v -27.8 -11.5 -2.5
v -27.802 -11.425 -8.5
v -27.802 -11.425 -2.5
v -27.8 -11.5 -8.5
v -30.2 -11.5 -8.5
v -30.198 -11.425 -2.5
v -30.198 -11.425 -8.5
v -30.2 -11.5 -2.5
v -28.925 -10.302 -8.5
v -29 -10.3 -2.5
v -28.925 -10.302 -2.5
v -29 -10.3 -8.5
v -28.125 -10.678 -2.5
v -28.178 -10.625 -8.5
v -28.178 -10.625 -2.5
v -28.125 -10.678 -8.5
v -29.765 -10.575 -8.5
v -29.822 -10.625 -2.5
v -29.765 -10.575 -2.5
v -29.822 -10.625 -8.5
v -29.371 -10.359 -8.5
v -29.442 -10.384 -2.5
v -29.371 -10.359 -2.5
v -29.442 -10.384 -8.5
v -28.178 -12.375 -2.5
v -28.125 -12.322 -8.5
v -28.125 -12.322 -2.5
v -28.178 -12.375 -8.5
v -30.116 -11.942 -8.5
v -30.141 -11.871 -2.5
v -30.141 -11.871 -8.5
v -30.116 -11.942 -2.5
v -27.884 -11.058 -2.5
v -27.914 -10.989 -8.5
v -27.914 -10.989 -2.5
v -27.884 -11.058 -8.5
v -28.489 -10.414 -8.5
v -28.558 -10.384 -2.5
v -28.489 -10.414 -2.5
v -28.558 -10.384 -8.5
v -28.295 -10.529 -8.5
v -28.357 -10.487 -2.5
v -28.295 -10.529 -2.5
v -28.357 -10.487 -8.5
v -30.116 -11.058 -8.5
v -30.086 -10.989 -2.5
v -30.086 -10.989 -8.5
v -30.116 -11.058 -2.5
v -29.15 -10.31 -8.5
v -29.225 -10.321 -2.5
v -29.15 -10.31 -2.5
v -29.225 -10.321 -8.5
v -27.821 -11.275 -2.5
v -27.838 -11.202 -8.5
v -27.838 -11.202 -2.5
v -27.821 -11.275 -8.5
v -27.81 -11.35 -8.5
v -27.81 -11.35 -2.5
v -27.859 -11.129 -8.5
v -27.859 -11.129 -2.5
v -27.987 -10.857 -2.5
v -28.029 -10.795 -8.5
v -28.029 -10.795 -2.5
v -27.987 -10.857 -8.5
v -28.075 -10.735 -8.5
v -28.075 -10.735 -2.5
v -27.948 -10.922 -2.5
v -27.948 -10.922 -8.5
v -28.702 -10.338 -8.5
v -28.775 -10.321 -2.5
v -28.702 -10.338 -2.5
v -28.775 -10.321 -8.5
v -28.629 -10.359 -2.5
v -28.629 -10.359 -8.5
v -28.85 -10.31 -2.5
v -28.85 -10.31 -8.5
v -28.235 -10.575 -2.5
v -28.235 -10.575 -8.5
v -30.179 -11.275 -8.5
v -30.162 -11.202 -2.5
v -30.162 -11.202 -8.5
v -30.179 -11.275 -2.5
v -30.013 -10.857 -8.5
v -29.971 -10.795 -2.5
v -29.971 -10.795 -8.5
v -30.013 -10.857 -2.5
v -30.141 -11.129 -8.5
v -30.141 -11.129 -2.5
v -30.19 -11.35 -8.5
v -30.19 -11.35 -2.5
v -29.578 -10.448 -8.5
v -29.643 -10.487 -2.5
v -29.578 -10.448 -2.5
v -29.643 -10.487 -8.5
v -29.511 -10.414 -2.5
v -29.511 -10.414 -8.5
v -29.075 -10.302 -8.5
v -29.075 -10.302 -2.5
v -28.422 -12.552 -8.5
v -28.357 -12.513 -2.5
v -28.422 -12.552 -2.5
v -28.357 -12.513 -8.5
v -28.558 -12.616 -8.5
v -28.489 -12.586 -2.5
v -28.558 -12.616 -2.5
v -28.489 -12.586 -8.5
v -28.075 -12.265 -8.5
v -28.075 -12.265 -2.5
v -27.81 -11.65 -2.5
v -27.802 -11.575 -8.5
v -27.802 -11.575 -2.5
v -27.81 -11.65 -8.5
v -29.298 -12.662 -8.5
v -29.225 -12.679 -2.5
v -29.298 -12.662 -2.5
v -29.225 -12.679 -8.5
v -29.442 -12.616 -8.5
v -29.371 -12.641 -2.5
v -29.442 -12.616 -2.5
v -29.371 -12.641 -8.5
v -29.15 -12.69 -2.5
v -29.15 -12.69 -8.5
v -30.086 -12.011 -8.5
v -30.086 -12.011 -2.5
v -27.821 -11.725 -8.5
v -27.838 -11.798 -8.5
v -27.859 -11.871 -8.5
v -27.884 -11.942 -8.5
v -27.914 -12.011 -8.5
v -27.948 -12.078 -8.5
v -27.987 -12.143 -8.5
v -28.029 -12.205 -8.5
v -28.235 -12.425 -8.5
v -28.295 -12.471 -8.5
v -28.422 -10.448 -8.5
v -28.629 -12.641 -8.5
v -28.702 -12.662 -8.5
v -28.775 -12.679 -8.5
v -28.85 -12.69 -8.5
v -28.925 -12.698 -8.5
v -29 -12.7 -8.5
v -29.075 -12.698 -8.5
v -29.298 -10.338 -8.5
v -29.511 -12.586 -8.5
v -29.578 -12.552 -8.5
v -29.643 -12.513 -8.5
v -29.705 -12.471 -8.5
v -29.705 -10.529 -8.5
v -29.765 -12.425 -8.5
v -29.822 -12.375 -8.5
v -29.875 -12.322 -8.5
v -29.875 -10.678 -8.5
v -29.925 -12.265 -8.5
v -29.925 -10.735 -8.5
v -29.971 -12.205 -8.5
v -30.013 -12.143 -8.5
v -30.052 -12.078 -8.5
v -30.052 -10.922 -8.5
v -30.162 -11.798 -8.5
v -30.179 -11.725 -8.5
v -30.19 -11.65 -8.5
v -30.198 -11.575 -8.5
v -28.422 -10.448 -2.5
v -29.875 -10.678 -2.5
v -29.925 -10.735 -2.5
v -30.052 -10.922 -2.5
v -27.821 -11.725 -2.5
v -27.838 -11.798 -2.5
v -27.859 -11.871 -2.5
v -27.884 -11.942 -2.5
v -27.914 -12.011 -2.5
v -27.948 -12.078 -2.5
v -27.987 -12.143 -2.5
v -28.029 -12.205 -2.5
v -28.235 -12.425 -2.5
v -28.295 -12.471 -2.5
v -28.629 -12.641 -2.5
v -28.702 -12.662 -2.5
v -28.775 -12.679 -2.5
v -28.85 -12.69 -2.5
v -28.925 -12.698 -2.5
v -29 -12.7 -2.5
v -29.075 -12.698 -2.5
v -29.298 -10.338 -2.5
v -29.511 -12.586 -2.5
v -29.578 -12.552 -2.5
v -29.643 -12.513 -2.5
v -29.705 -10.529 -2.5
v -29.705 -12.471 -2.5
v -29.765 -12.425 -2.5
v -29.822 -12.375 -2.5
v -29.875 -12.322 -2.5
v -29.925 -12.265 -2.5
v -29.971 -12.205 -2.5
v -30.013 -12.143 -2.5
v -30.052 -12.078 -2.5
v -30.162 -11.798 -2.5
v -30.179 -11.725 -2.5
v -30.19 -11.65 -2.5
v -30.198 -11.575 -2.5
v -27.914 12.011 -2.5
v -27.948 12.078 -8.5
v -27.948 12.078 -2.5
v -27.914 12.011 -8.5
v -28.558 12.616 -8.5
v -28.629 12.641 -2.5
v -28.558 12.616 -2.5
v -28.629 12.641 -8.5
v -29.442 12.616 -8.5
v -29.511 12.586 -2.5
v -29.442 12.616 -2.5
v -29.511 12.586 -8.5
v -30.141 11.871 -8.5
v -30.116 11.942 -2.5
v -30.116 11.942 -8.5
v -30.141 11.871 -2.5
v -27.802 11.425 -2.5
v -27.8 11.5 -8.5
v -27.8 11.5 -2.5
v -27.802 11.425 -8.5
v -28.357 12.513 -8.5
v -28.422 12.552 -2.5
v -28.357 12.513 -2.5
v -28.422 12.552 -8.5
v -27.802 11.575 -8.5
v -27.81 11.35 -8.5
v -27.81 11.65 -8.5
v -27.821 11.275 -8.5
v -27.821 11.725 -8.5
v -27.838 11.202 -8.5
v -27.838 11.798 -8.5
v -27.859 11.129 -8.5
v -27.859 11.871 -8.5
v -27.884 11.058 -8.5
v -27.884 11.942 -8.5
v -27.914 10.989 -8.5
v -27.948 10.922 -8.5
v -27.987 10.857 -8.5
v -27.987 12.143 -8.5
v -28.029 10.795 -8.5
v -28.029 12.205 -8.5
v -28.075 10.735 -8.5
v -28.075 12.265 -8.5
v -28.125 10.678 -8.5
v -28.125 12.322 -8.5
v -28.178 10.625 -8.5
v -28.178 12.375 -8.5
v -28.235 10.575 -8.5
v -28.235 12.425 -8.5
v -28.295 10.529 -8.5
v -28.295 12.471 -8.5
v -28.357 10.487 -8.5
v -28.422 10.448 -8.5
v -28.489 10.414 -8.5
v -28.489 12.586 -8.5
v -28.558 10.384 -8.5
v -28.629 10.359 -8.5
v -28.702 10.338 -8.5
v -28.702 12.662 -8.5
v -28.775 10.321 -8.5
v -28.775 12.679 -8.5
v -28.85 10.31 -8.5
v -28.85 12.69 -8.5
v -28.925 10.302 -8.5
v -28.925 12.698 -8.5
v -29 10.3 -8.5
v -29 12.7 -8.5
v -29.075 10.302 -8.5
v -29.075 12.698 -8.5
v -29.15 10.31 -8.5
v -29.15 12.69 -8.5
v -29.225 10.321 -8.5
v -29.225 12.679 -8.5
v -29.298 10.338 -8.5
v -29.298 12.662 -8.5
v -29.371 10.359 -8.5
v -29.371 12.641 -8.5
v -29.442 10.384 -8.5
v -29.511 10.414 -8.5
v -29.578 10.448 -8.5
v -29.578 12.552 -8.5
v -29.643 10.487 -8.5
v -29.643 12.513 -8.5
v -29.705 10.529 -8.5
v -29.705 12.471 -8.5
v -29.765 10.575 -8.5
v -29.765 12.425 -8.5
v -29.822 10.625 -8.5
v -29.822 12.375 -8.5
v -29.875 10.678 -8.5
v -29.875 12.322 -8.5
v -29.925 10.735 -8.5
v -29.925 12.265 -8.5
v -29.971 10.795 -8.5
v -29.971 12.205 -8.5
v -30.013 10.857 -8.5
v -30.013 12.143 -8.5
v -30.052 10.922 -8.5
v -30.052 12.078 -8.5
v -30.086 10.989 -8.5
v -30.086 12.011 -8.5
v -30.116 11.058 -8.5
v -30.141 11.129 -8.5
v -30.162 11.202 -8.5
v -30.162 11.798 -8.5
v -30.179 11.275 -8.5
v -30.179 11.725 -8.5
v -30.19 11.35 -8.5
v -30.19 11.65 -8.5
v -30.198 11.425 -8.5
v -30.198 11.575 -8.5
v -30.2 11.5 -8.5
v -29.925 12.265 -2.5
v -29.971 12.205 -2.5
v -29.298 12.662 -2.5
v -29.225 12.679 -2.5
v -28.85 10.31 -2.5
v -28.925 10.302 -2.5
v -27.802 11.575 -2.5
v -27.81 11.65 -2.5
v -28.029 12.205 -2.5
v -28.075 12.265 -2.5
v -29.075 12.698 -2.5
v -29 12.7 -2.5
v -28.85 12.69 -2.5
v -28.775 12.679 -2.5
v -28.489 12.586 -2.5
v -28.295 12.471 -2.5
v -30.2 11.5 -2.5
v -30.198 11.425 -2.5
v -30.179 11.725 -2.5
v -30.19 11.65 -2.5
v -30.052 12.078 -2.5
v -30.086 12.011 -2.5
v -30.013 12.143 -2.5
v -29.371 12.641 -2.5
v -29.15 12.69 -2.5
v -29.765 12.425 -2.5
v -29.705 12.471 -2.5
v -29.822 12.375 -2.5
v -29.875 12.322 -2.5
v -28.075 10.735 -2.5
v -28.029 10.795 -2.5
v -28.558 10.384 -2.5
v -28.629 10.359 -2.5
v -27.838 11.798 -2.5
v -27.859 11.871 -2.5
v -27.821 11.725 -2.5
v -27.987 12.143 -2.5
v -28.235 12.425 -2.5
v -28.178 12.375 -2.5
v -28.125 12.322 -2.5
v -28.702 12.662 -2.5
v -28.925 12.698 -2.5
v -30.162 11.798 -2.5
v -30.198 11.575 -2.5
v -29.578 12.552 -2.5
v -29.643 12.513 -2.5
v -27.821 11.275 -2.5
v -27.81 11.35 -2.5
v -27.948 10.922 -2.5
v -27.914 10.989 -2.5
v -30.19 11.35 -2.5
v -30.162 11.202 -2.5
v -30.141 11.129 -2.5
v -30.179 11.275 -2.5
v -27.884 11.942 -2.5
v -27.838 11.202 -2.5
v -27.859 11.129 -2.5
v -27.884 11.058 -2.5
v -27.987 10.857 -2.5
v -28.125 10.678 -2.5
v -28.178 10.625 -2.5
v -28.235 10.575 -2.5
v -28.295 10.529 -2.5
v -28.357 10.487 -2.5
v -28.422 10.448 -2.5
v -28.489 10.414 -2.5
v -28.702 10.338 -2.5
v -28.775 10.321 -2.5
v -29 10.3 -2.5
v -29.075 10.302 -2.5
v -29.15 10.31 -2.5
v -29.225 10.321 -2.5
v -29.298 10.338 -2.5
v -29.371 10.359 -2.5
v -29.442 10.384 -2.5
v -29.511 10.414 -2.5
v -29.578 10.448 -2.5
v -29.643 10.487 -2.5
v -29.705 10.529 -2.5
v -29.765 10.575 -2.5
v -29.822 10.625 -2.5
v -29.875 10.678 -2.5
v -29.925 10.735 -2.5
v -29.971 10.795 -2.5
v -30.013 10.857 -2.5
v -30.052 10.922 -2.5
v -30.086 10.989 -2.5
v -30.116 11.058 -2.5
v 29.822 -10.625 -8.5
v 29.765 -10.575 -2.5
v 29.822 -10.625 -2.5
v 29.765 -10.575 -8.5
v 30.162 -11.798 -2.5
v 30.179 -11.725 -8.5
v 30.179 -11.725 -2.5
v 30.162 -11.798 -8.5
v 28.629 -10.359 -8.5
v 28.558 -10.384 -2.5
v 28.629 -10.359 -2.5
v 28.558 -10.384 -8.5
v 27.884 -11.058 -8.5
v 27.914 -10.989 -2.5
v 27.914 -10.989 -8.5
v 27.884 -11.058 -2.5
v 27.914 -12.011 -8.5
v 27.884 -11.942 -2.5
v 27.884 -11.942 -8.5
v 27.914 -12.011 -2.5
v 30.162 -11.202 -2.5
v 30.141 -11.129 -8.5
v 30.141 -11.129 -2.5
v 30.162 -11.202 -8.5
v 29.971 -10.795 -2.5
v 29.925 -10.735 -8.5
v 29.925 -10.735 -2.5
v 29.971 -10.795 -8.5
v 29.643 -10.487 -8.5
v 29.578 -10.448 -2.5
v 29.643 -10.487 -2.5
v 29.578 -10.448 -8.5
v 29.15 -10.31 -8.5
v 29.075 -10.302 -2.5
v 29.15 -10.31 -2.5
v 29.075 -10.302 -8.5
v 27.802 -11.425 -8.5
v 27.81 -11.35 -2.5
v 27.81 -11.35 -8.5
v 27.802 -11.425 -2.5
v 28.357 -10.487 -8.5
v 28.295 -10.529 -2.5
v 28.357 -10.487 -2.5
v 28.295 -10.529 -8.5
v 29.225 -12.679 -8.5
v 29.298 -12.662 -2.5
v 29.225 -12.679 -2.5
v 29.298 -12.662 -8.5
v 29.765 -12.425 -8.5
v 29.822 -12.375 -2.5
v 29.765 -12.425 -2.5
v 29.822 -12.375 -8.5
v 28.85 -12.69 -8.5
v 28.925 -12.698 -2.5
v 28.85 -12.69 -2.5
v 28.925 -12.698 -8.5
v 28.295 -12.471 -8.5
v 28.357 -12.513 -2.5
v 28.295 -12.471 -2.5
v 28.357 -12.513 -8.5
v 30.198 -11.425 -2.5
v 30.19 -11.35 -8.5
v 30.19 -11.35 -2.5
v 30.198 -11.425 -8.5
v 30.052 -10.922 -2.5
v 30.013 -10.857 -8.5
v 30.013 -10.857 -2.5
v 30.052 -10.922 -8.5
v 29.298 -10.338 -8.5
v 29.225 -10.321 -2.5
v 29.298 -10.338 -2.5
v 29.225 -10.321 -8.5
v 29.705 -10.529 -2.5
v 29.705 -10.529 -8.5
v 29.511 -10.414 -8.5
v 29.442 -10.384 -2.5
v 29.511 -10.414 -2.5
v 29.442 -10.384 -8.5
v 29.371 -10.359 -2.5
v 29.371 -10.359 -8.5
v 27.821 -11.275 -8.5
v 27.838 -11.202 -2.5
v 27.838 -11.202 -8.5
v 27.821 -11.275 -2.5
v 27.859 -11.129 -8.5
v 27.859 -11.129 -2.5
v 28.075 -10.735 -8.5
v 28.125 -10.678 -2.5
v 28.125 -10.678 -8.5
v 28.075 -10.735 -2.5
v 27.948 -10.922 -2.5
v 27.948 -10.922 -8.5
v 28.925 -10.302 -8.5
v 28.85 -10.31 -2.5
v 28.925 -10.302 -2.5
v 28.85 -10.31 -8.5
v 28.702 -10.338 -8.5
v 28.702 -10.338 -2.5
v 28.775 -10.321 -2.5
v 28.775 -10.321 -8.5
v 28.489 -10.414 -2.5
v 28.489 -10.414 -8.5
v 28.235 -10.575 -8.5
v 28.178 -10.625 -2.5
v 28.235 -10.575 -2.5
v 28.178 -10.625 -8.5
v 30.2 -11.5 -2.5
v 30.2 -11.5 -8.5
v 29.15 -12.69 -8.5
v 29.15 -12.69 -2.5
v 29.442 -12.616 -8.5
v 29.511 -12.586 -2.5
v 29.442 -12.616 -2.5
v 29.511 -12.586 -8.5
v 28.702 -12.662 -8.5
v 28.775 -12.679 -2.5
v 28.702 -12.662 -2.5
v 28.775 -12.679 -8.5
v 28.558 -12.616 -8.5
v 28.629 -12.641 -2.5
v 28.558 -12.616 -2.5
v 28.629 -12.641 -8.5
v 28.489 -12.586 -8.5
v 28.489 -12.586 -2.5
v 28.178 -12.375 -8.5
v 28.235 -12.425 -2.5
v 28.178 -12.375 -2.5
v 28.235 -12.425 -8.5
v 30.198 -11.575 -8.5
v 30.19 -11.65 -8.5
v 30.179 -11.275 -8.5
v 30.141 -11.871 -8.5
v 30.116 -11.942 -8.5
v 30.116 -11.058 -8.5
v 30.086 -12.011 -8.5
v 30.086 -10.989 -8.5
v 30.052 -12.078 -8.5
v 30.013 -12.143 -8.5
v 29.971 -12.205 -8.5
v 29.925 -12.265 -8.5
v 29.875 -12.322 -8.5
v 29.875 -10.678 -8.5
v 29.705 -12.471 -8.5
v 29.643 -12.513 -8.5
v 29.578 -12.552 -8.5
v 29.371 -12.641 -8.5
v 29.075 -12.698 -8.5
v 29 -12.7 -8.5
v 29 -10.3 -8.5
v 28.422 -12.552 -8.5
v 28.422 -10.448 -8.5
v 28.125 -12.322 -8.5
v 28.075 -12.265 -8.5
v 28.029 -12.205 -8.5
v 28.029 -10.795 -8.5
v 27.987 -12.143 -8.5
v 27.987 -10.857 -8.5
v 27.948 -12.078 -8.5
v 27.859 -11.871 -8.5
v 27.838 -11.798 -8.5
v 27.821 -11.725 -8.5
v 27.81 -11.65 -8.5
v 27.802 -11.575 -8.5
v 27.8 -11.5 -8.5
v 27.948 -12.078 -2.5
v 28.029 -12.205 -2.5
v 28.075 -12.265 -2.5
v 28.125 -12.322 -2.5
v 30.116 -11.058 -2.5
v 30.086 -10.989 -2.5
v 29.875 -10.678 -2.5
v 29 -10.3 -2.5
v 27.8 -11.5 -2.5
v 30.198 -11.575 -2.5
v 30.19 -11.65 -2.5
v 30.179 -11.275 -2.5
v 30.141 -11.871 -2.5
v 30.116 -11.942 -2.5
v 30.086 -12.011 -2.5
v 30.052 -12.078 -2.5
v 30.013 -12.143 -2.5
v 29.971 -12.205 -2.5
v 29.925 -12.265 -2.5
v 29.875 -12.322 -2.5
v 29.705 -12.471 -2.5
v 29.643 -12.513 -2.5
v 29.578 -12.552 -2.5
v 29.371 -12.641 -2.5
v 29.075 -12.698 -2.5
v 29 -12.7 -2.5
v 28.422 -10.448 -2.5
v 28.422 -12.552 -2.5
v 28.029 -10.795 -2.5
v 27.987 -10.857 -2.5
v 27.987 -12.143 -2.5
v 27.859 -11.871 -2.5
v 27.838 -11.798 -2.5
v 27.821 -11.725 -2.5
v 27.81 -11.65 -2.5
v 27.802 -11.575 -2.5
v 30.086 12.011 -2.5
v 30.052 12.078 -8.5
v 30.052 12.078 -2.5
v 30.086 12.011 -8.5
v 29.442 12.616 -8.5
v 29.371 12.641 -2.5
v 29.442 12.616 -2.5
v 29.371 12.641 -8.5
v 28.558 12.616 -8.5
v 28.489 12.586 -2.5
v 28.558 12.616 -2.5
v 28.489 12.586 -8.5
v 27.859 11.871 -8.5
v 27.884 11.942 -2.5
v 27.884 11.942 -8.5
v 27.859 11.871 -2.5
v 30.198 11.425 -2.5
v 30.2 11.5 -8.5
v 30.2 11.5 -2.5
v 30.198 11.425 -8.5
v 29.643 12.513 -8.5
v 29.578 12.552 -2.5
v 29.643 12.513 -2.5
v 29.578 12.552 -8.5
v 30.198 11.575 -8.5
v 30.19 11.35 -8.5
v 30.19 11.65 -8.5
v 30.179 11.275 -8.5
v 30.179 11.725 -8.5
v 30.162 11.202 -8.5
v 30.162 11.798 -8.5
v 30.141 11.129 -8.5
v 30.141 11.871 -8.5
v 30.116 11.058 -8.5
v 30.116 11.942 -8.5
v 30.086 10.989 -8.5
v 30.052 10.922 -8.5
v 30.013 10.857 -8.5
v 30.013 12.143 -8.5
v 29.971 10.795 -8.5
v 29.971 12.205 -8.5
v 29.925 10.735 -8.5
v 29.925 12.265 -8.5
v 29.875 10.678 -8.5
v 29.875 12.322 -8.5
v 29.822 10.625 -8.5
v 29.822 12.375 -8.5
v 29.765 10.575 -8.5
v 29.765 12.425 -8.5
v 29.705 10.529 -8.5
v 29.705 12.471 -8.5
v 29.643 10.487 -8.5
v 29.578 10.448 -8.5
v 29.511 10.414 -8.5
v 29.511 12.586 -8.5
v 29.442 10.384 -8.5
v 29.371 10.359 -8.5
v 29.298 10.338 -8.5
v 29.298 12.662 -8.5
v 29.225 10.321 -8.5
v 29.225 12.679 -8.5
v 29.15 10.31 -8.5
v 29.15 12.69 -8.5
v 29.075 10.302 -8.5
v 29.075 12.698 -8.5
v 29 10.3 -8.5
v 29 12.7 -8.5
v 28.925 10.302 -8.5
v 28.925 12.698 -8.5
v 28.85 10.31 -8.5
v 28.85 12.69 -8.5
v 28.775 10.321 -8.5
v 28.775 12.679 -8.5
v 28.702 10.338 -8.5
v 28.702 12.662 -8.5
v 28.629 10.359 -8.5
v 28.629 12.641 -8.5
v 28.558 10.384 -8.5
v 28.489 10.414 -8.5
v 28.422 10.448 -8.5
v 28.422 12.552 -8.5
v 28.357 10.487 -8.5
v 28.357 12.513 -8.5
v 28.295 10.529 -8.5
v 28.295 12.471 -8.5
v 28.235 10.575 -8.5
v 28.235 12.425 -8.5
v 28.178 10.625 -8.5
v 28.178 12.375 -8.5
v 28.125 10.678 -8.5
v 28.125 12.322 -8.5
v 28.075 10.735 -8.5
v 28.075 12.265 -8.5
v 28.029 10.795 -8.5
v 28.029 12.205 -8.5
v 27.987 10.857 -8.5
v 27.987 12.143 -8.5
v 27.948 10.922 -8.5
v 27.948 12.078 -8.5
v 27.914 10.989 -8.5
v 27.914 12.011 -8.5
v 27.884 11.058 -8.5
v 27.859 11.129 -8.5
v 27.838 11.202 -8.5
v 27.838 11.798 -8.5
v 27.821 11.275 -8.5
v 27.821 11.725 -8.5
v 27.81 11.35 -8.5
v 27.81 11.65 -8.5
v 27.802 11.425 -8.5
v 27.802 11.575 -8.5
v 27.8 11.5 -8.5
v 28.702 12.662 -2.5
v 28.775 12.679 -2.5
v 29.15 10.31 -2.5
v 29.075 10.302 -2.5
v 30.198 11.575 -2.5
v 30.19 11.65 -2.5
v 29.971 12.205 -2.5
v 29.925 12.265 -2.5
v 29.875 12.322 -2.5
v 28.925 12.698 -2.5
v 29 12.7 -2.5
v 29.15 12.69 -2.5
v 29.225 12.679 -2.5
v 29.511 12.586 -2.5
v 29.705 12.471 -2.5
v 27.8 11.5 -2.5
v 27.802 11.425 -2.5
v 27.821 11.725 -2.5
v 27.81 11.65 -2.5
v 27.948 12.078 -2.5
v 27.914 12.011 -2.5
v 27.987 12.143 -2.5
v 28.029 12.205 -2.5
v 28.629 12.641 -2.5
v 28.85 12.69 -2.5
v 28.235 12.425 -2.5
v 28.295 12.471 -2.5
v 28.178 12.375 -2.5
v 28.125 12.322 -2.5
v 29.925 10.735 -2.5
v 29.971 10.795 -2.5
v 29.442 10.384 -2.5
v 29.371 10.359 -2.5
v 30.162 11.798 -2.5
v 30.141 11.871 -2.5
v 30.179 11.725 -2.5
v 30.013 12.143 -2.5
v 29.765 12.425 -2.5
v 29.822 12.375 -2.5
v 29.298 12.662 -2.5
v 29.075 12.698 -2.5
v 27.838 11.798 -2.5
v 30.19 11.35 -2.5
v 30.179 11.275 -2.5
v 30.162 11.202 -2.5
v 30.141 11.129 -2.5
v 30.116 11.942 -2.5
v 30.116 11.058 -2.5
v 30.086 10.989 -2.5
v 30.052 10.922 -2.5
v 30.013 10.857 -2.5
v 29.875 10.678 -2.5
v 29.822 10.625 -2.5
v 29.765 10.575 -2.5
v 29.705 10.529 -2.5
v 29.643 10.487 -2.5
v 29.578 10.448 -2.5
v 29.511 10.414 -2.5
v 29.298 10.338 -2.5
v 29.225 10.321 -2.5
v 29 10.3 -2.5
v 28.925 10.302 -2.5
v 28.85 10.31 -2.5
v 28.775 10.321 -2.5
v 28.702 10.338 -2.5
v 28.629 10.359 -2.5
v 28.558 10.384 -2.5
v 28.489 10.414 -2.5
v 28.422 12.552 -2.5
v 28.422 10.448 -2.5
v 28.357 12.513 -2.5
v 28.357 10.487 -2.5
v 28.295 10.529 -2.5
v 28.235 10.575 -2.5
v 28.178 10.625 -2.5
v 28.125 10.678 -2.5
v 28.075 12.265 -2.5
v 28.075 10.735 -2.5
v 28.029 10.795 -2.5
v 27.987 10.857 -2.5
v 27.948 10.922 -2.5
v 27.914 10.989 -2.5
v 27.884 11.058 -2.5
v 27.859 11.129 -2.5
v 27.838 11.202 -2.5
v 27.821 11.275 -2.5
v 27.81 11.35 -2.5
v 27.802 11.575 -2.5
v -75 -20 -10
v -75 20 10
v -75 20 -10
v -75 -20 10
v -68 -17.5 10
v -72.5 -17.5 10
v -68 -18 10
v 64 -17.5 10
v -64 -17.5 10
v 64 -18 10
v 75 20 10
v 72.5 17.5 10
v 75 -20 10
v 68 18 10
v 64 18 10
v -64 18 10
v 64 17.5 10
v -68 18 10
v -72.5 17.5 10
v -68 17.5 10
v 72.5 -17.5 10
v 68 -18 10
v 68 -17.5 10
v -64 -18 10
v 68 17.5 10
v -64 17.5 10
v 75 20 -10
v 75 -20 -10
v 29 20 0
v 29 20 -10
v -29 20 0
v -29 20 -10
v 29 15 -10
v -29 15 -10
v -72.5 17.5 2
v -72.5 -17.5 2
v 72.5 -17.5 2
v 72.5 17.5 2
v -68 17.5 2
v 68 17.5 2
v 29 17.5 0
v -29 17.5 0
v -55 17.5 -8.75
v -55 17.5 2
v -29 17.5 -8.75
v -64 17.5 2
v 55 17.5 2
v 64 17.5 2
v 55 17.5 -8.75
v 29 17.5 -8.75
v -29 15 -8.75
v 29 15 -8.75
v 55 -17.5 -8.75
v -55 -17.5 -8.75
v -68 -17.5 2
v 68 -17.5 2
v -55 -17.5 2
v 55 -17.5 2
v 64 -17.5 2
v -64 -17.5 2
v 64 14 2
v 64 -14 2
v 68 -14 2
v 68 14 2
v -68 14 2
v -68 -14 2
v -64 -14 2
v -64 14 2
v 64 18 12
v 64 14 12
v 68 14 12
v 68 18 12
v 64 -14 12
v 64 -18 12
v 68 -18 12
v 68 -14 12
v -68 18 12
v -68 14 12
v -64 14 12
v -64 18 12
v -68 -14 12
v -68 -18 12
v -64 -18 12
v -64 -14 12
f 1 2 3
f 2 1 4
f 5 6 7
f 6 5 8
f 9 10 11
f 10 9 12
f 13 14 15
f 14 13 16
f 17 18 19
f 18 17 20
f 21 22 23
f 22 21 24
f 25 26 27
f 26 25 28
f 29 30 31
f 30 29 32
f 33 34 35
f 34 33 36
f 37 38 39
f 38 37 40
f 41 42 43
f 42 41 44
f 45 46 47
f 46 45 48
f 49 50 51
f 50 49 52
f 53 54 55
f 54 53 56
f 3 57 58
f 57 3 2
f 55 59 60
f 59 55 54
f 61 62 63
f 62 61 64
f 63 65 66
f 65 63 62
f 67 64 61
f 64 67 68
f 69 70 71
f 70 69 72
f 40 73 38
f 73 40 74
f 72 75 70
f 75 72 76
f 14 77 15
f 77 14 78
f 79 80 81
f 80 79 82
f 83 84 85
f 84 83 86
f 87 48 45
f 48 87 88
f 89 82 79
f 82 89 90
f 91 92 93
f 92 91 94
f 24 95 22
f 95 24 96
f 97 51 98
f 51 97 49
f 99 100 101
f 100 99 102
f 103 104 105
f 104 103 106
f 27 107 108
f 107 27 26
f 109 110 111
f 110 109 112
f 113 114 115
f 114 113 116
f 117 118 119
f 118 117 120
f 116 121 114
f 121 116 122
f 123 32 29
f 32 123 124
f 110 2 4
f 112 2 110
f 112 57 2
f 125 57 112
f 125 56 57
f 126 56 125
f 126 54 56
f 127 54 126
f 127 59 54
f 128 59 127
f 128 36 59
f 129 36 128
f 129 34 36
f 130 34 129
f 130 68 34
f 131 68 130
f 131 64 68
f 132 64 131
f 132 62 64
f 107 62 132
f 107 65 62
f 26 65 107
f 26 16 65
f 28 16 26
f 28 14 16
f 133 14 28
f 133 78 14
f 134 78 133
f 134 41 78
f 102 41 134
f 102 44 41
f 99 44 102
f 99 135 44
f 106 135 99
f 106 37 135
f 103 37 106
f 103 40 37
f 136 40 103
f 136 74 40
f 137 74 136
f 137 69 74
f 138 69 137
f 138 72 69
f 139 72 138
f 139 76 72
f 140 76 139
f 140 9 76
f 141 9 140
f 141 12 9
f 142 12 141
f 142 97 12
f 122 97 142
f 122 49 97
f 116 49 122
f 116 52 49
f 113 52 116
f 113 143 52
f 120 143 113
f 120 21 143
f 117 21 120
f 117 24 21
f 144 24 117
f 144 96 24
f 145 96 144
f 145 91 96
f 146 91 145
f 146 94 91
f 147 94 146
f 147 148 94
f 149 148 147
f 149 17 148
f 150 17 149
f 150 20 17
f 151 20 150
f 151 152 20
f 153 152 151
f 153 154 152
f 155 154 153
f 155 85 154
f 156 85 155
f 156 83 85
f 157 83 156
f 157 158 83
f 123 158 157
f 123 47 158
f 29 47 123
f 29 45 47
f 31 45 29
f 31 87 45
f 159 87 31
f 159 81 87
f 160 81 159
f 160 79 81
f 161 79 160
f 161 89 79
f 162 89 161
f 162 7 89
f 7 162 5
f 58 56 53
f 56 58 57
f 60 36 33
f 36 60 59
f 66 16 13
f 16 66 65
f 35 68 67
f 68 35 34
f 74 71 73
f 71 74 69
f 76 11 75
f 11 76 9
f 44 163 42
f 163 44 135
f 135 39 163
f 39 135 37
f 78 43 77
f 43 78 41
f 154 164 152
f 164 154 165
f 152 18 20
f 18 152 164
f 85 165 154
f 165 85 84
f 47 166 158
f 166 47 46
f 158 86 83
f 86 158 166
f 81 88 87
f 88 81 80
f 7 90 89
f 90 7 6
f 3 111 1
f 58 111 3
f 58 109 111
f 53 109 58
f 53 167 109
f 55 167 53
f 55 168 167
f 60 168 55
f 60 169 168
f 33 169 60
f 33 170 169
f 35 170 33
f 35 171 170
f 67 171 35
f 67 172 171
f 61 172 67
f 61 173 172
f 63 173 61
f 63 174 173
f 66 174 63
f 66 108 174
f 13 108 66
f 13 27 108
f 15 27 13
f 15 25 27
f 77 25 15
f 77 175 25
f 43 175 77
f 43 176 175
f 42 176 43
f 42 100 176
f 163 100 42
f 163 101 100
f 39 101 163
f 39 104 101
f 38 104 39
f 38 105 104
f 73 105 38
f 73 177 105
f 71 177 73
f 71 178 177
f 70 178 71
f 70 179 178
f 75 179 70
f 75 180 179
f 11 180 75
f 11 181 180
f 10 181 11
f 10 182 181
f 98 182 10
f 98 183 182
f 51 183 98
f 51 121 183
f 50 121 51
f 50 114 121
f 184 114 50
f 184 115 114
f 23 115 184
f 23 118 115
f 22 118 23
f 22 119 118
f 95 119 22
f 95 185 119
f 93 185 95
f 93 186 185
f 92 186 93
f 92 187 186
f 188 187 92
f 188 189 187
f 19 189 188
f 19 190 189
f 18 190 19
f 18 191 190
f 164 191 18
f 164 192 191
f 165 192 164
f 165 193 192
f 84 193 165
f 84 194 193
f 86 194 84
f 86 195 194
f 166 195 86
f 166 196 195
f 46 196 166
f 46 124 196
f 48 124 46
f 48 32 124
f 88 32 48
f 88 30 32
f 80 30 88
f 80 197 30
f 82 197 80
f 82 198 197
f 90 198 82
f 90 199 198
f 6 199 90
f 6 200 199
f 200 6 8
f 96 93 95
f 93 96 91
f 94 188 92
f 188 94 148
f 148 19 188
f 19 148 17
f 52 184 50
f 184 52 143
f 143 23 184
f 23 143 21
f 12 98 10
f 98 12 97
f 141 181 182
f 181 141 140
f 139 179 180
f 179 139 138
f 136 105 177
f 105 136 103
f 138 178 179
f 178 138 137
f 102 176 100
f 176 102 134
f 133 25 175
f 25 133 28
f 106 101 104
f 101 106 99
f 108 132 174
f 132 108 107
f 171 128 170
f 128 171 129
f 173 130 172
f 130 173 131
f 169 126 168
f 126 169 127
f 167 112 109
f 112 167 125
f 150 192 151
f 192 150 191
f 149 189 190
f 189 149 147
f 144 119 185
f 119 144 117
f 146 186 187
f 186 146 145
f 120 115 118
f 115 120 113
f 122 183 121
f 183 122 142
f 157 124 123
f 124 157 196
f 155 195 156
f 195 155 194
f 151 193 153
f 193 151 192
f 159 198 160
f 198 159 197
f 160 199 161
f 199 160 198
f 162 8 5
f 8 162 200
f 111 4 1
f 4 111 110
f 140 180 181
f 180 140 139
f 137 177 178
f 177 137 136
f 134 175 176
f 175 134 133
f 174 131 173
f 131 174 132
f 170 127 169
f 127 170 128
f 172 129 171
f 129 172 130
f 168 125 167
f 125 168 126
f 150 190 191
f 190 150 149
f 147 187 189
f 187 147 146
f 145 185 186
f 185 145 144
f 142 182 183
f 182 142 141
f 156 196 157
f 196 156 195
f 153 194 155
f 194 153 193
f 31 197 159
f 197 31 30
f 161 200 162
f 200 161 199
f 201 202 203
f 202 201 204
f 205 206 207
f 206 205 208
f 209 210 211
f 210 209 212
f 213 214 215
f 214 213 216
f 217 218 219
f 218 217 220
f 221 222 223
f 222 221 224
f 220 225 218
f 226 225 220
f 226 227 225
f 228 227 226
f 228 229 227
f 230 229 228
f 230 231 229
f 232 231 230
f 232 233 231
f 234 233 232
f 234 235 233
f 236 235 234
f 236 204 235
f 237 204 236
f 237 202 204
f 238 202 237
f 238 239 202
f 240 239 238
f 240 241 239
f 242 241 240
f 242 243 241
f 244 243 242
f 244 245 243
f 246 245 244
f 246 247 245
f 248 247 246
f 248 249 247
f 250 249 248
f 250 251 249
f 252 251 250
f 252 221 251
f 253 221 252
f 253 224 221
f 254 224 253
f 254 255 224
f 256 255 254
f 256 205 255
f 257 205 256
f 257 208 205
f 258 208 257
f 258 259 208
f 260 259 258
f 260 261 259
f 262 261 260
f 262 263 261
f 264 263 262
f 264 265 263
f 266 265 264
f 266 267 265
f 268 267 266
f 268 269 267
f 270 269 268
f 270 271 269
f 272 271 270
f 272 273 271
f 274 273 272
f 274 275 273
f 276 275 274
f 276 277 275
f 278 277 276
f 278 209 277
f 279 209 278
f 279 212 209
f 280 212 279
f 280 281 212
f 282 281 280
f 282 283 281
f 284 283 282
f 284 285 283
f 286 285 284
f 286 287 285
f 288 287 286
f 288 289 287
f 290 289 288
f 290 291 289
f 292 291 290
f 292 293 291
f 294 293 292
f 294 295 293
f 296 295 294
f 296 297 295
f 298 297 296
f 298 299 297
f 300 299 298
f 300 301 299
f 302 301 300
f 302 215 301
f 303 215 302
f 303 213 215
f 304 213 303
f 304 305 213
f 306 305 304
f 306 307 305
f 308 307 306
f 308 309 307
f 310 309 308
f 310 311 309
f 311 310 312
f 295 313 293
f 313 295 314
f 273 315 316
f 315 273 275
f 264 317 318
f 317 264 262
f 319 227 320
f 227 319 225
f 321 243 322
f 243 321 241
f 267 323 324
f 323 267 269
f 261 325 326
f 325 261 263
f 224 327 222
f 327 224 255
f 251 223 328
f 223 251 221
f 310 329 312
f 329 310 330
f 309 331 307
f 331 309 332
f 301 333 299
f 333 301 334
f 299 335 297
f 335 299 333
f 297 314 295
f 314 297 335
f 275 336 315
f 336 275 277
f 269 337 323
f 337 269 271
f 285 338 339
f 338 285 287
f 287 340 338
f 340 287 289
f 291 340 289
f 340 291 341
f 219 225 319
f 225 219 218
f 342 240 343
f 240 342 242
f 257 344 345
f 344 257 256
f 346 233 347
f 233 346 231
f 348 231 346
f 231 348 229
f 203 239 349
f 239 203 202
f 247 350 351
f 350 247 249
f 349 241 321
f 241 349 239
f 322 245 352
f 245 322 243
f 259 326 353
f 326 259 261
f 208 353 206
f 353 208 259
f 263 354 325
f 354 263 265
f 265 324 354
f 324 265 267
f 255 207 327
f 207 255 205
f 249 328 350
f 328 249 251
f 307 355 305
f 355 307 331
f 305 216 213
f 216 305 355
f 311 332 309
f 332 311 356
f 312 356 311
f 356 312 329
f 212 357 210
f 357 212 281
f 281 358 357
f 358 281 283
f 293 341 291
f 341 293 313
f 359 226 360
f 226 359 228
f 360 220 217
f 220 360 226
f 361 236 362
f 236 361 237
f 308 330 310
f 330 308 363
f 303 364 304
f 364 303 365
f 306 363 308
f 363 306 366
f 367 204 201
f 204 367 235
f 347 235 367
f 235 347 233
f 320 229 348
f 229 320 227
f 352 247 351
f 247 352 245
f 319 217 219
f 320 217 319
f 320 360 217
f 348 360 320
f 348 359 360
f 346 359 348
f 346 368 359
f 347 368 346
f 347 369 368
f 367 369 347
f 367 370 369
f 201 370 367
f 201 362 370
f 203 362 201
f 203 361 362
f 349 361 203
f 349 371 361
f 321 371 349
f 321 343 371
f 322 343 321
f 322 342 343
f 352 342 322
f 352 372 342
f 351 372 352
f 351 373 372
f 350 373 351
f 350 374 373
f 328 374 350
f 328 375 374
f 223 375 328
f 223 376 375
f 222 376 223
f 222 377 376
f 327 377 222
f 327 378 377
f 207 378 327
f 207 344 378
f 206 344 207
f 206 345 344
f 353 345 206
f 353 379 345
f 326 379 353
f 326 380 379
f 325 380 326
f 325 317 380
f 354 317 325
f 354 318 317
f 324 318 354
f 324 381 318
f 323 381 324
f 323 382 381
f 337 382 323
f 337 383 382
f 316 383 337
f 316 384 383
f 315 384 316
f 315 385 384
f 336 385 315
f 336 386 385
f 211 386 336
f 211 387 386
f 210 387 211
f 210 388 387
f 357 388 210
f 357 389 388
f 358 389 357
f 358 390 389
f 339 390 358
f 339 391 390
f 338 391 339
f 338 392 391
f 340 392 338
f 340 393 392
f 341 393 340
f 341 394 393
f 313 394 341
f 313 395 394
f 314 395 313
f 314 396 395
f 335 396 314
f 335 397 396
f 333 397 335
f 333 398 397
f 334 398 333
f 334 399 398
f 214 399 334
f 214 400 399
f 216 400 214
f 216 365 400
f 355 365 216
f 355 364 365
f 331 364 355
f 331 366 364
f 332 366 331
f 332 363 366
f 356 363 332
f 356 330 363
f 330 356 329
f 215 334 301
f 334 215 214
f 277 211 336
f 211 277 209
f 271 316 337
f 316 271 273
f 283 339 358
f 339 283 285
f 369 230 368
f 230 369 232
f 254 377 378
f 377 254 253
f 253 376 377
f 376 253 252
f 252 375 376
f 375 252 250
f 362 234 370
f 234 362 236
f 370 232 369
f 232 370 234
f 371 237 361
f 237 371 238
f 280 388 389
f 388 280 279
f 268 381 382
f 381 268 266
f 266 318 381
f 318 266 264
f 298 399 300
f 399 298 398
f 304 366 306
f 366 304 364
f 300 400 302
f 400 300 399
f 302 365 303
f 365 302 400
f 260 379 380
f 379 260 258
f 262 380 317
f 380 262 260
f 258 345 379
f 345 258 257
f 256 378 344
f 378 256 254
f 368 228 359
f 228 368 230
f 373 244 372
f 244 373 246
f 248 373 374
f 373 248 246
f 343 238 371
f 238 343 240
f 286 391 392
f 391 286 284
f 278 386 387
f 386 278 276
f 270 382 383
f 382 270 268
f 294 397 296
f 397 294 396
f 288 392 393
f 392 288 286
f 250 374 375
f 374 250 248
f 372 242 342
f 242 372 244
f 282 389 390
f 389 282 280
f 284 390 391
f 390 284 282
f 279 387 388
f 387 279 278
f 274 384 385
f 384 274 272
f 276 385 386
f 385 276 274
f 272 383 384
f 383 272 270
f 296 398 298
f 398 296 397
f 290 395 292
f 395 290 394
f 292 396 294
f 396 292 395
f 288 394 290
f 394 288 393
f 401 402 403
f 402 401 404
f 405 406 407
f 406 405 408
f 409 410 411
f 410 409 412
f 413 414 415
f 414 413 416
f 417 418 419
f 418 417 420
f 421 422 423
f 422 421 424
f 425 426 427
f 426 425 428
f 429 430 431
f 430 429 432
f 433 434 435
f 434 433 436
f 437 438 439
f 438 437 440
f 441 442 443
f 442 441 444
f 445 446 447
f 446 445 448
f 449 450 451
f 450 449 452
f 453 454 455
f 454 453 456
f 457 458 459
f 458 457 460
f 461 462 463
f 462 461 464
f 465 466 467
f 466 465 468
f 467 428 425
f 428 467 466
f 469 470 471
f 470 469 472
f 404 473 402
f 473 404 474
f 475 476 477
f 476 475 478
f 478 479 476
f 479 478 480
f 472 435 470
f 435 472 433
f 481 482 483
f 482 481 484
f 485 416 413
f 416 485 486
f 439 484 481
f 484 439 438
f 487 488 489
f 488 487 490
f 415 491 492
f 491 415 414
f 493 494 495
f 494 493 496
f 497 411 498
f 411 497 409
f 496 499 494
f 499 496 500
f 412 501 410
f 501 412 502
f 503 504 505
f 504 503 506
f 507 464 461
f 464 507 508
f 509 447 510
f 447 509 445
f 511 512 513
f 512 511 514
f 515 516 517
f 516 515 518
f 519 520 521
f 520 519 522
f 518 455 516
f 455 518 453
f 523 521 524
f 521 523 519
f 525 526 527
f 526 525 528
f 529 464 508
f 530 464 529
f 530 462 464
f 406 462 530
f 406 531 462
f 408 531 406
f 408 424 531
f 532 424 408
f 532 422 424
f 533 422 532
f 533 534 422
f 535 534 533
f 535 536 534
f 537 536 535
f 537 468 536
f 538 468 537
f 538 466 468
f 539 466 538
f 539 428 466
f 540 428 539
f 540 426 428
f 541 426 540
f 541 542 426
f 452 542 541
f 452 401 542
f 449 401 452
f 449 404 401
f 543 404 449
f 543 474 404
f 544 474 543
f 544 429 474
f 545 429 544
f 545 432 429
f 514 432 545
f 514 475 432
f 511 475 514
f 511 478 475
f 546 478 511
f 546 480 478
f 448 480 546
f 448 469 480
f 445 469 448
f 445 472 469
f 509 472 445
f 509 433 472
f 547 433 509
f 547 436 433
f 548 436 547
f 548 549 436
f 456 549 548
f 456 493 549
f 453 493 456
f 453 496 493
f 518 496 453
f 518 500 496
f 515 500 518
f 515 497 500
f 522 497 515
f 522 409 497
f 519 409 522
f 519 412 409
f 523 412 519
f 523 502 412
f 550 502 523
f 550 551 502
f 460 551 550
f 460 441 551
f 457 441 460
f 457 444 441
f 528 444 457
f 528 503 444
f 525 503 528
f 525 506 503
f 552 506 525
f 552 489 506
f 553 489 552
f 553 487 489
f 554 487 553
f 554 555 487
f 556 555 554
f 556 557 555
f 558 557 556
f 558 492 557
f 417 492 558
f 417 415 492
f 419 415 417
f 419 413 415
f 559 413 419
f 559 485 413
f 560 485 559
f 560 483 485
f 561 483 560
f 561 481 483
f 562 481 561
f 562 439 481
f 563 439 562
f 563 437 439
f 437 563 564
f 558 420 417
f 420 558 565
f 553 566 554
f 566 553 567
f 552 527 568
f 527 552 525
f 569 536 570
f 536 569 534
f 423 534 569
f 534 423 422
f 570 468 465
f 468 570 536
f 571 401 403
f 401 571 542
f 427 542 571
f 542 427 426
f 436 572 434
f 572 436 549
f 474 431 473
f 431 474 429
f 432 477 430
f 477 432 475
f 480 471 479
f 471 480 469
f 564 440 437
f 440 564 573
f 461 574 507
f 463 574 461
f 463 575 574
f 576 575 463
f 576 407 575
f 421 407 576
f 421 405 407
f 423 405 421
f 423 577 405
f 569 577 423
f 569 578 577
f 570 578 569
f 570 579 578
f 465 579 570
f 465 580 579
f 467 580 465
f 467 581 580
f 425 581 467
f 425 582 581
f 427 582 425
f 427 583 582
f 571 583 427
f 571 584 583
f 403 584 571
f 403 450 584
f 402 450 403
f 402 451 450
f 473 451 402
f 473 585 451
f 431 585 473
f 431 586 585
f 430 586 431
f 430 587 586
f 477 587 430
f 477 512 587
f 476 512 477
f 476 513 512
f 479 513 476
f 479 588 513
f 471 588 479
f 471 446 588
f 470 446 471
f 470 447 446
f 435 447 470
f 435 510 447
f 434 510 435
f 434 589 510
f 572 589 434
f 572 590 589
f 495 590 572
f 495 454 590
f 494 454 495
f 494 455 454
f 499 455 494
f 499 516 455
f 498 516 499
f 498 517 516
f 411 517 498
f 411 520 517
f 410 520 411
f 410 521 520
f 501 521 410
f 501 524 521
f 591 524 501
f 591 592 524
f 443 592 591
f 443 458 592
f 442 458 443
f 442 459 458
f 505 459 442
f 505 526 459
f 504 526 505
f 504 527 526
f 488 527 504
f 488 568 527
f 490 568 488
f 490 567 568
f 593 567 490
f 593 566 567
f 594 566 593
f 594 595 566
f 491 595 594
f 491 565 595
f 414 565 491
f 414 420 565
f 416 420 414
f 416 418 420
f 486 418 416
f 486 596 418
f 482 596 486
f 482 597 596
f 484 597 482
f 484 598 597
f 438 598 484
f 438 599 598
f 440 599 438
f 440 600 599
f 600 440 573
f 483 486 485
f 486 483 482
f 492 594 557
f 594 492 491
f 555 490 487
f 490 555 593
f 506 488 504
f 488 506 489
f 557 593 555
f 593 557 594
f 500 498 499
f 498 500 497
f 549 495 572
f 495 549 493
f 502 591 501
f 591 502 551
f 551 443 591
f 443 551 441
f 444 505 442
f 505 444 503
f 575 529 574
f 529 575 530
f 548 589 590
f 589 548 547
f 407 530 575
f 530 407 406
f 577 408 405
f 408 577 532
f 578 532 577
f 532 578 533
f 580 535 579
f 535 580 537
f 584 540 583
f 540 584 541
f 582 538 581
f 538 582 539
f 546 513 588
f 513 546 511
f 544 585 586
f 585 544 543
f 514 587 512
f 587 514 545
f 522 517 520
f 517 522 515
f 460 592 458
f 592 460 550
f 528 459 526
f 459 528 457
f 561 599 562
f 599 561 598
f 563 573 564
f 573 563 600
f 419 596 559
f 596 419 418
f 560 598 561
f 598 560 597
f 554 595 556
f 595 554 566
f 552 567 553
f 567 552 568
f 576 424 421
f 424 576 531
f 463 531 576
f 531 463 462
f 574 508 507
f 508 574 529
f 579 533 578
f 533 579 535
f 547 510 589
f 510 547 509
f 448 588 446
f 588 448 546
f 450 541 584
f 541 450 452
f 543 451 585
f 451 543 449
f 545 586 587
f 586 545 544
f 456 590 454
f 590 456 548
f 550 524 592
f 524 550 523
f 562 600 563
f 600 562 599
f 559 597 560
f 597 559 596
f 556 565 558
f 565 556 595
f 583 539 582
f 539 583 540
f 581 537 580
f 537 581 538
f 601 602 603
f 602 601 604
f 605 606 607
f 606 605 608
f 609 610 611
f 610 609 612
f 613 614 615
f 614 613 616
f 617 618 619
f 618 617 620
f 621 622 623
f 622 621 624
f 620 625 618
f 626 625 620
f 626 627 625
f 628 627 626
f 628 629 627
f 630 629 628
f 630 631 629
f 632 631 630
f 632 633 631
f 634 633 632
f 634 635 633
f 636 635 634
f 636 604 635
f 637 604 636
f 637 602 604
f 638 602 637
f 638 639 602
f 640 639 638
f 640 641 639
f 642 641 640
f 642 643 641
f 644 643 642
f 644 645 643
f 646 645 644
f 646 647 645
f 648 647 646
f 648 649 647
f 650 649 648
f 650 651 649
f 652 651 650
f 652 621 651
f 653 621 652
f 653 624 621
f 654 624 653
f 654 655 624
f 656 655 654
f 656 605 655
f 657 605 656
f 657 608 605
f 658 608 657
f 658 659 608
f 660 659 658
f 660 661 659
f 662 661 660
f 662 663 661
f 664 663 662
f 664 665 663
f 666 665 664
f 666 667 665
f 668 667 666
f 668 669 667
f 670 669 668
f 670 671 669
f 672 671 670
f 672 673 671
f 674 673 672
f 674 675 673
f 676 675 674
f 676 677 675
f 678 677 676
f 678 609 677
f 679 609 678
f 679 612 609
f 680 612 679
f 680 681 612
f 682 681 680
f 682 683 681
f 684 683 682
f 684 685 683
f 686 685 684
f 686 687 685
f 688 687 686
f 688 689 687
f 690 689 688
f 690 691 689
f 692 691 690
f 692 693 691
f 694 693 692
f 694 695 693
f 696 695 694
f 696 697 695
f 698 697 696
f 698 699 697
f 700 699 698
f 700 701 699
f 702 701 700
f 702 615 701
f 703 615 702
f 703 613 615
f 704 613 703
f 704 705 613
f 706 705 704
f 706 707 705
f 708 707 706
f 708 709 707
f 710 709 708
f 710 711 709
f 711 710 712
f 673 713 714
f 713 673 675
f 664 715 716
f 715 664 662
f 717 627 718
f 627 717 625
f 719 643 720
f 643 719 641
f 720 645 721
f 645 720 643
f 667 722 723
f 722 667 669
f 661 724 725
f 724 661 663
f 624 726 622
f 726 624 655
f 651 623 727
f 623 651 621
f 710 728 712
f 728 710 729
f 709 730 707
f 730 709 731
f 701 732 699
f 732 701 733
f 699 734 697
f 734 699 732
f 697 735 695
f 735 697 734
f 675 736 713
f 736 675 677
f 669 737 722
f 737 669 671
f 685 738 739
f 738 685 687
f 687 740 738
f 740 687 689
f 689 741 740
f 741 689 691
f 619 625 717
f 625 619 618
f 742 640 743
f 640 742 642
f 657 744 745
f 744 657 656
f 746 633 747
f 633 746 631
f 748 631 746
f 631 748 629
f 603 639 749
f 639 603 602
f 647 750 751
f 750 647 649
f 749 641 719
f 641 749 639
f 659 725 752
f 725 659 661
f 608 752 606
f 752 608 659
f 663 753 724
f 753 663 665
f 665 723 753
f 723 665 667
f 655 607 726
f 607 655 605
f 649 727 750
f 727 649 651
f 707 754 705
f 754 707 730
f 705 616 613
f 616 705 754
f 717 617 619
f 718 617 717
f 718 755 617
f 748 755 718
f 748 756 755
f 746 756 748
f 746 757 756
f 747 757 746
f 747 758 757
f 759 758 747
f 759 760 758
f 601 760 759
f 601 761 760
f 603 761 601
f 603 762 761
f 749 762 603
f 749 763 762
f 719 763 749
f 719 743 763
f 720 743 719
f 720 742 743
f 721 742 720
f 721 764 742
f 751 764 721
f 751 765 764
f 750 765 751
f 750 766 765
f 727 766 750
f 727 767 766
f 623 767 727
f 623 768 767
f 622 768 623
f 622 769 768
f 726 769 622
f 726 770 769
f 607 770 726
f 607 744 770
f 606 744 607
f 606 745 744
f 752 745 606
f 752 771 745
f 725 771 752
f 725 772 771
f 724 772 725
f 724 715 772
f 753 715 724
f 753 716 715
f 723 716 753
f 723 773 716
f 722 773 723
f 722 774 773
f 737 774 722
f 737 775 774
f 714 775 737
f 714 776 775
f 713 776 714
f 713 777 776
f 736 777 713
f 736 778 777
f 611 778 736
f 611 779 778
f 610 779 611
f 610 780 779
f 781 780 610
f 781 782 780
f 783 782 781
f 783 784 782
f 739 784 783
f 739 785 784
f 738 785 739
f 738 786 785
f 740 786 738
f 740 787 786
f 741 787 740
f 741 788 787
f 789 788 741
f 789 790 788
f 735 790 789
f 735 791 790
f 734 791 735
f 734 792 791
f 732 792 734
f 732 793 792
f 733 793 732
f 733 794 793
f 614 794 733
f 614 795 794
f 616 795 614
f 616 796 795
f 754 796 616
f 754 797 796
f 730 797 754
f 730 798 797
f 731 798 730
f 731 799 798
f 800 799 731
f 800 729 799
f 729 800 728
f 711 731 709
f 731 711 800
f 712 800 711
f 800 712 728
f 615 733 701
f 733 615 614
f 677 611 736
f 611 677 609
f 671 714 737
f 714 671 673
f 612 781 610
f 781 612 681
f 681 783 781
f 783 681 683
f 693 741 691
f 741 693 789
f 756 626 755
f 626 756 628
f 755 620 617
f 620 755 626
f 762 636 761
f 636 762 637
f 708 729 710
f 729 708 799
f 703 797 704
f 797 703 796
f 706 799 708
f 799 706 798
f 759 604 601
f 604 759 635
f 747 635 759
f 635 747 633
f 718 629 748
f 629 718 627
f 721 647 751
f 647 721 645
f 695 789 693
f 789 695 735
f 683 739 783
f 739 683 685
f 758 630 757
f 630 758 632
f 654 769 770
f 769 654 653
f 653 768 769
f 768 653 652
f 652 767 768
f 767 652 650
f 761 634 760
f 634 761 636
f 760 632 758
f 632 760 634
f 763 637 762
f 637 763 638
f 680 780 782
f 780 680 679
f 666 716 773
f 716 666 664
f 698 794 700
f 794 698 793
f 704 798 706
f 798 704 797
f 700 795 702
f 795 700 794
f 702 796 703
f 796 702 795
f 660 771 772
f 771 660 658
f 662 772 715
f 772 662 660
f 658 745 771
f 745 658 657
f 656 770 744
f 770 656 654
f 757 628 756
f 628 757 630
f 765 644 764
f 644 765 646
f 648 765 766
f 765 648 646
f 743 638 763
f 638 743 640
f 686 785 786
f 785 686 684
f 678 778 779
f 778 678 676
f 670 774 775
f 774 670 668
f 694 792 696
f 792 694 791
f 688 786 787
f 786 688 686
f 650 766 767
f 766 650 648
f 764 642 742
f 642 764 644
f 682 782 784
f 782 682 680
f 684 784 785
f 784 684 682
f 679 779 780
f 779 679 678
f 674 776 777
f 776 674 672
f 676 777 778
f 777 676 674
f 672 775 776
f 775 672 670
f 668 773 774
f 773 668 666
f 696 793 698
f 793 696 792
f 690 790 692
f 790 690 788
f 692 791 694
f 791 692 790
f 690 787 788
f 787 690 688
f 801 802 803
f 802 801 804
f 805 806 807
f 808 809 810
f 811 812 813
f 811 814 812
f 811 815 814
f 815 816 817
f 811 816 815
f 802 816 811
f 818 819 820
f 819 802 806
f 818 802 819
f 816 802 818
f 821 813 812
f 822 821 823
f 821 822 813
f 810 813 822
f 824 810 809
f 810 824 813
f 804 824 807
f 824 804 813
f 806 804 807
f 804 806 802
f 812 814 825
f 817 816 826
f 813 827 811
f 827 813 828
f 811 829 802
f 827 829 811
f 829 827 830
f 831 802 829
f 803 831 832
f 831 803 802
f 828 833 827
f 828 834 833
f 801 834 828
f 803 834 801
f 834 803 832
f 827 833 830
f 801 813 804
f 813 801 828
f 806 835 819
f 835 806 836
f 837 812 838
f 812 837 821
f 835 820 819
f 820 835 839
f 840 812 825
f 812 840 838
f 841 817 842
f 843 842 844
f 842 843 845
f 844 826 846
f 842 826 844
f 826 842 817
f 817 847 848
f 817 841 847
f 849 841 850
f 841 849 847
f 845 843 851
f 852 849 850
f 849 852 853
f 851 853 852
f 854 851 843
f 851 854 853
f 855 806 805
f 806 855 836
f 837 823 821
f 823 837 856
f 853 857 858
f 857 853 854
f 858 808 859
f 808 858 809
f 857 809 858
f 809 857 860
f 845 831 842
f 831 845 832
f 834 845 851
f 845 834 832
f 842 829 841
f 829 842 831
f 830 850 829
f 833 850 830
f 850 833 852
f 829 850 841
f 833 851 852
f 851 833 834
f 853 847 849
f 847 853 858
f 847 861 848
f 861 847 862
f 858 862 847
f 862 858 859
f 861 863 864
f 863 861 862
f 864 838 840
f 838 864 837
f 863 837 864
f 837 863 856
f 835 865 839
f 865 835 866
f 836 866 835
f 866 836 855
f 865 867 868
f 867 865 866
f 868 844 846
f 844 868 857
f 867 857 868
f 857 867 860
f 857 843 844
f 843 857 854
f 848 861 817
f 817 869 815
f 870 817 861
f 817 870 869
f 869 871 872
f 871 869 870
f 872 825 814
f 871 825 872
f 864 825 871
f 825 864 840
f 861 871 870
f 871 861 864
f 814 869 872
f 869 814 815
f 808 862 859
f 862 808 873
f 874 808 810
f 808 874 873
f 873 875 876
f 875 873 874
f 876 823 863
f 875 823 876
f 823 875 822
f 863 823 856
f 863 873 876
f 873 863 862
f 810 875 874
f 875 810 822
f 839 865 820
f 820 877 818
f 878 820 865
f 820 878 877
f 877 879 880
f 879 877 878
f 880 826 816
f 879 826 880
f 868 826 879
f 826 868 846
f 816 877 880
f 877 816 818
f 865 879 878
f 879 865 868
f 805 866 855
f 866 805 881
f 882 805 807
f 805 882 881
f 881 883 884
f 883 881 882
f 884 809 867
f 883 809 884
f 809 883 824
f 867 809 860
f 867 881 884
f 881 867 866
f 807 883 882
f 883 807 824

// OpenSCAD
// file: constants.scad
WIDTH = 40;
LENGTH = 150;
BASE_HEIGHT = 20;
WALL_THICKNESS = 5;

DISTANCE_OF_HOLE_FROM_EDGE = 4;
KEY_SIZE = 4;

ACRYLIC_THICKNESS = 6.5;
SLOT_HEIGHT = 30;

HEIGHT_OF_HALF_WALL = 12;

RASPI_WIDTH = 23;
RASPI_LENGTH = 58;
HOLE_RADIUS = 1.2;

STRIP_HEIGHT = 2;
// main file
/*
  This file contains the bottom part of the base that houses the raspberry pi zero w
  and the led lights
  author: Aliasgar Kutiyanawala
  last modified: 11/26/2017
*/
include <constants.scad>;

$fn=100;

module hollow_box(length, width, height, thickness){
    difference(){
        cube([length, width, height], center=true);
        translate([0, 0, thickness/2]){
            cube([length - 2 * thickness, width - 2 * thickness, height], center=true);
        }
    }
}


//columns for the raspberry pi zero
module raspi(){
    translate([0, 0, 0]){
        cylinder(h=HEIGHT_OF_HALF_WALL/2, r1=HOLE_RADIUS, r2=HOLE_RADIUS);
    }
    translate([0, RASPI_WIDTH, 0]){
        cylinder(h=HEIGHT_OF_HALF_WALL/2, r1=HOLE_RADIUS, r2=HOLE_RADIUS);
    }
    translate([RASPI_LENGTH, 0, 0]){
        cylinder(h=HEIGHT_OF_HALF_WALL/2, r1=HOLE_RADIUS, r2=HOLE_RADIUS);
    }
    translate([RASPI_LENGTH, RASPI_WIDTH, 0]){
        cylinder(h=HEIGHT_OF_HALF_WALL/2, r1=HOLE_RADIUS, r2=HOLE_RADIUS);
    }    
}


module base(){
    union(){
        //columns for the raspberry pi zero w
        translate([-RASPI_LENGTH/2, -RASPI_WIDTH/2, -BASE_HEIGHT/2 + WALL_THICKNESS/2 - 1]){
            raspi();
        }
                
        difference(){
            hollow_box(LENGTH, WIDTH, BASE_HEIGHT, WALL_THICKNESS/2);
            //cutout to access raspi ports
            translate([0, WIDTH/2, -BASE_HEIGHT/2 + BASE_HEIGHT/4]){
                cube([RASPI_LENGTH, 2 * WALL_THICKNESS, BASE_HEIGHT/2], center=true);
            }
        }
        
        //support for the strip that holds the led lights
        translate([LENGTH/2 - 2 * WALL_THICKNESS, 0, -BASE_HEIGHT/2 + HEIGHT_OF_HALF_WALL/2]){
            cube([4 * WALL_THICKNESS, WIDTH, HEIGHT_OF_HALF_WALL], center=true);
        }
        
        //support for the strip that holds the led lights
        translate([-LENGTH/2 + 2 * WALL_THICKNESS, 0, -BASE_HEIGHT/2 + HEIGHT_OF_HALF_WALL/2]){
            cube([4 * WALL_THICKNESS, WIDTH, HEIGHT_OF_HALF_WALL], center=true);
        }
        
        
        //keys that fit in the slot of the top part
        keyX = LENGTH/2 - WALL_THICKNESS - DISTANCE_OF_HOLE_FROM_EDGE;
        
        //top part of key
        translate([keyX, WIDTH/2 - DISTANCE_OF_HOLE_FROM_EDGE, BASE_HEIGHT/2]){
            cube(KEY_SIZE, center = true);
        }
        //bottom part of key
        translate([keyX, WIDTH/2 - DISTANCE_OF_HOLE_FROM_EDGE, 0]){
            cube([KEY_SIZE, KEY_SIZE, BASE_HEIGHT] , center = true);
        }
        
        //top part of key
        translate([keyX, -WIDTH/2 + DISTANCE_OF_HOLE_FROM_EDGE, BASE_HEIGHT/2]){
            cube(KEY_SIZE, center = true);
        }
        //bottom part of key
        translate([keyX, -WIDTH/2 + DISTANCE_OF_HOLE_FROM_EDGE, 0]){
            cube([KEY_SIZE, KEY_SIZE, BASE_HEIGHT] , center = true);
        }
        
        //top part of key
        translate([-keyX, WIDTH/2 - DISTANCE_OF_HOLE_FROM_EDGE, BASE_HEIGHT/2]){
            cube(KEY_SIZE, center = true);
        }
        //bottom part of key
        translate([-keyX, WIDTH/2 - DISTANCE_OF_HOLE_FROM_EDGE, 0]){
            cube([KEY_SIZE, KEY_SIZE, BASE_HEIGHT] , center = true);
        }
        
        //top part of key
        translate([-keyX, -WIDTH/2 + DISTANCE_OF_HOLE_FROM_EDGE, BASE_HEIGHT/2]){
            cube(KEY_SIZE, center = true);
        }
        //bottom part of key
        translate([-keyX, -WIDTH/2 + DISTANCE_OF_HOLE_FROM_EDGE, 0]){
            cube([KEY_SIZE, KEY_SIZE, BASE_HEIGHT] , center = true);
        }
    }
    
}

base();
